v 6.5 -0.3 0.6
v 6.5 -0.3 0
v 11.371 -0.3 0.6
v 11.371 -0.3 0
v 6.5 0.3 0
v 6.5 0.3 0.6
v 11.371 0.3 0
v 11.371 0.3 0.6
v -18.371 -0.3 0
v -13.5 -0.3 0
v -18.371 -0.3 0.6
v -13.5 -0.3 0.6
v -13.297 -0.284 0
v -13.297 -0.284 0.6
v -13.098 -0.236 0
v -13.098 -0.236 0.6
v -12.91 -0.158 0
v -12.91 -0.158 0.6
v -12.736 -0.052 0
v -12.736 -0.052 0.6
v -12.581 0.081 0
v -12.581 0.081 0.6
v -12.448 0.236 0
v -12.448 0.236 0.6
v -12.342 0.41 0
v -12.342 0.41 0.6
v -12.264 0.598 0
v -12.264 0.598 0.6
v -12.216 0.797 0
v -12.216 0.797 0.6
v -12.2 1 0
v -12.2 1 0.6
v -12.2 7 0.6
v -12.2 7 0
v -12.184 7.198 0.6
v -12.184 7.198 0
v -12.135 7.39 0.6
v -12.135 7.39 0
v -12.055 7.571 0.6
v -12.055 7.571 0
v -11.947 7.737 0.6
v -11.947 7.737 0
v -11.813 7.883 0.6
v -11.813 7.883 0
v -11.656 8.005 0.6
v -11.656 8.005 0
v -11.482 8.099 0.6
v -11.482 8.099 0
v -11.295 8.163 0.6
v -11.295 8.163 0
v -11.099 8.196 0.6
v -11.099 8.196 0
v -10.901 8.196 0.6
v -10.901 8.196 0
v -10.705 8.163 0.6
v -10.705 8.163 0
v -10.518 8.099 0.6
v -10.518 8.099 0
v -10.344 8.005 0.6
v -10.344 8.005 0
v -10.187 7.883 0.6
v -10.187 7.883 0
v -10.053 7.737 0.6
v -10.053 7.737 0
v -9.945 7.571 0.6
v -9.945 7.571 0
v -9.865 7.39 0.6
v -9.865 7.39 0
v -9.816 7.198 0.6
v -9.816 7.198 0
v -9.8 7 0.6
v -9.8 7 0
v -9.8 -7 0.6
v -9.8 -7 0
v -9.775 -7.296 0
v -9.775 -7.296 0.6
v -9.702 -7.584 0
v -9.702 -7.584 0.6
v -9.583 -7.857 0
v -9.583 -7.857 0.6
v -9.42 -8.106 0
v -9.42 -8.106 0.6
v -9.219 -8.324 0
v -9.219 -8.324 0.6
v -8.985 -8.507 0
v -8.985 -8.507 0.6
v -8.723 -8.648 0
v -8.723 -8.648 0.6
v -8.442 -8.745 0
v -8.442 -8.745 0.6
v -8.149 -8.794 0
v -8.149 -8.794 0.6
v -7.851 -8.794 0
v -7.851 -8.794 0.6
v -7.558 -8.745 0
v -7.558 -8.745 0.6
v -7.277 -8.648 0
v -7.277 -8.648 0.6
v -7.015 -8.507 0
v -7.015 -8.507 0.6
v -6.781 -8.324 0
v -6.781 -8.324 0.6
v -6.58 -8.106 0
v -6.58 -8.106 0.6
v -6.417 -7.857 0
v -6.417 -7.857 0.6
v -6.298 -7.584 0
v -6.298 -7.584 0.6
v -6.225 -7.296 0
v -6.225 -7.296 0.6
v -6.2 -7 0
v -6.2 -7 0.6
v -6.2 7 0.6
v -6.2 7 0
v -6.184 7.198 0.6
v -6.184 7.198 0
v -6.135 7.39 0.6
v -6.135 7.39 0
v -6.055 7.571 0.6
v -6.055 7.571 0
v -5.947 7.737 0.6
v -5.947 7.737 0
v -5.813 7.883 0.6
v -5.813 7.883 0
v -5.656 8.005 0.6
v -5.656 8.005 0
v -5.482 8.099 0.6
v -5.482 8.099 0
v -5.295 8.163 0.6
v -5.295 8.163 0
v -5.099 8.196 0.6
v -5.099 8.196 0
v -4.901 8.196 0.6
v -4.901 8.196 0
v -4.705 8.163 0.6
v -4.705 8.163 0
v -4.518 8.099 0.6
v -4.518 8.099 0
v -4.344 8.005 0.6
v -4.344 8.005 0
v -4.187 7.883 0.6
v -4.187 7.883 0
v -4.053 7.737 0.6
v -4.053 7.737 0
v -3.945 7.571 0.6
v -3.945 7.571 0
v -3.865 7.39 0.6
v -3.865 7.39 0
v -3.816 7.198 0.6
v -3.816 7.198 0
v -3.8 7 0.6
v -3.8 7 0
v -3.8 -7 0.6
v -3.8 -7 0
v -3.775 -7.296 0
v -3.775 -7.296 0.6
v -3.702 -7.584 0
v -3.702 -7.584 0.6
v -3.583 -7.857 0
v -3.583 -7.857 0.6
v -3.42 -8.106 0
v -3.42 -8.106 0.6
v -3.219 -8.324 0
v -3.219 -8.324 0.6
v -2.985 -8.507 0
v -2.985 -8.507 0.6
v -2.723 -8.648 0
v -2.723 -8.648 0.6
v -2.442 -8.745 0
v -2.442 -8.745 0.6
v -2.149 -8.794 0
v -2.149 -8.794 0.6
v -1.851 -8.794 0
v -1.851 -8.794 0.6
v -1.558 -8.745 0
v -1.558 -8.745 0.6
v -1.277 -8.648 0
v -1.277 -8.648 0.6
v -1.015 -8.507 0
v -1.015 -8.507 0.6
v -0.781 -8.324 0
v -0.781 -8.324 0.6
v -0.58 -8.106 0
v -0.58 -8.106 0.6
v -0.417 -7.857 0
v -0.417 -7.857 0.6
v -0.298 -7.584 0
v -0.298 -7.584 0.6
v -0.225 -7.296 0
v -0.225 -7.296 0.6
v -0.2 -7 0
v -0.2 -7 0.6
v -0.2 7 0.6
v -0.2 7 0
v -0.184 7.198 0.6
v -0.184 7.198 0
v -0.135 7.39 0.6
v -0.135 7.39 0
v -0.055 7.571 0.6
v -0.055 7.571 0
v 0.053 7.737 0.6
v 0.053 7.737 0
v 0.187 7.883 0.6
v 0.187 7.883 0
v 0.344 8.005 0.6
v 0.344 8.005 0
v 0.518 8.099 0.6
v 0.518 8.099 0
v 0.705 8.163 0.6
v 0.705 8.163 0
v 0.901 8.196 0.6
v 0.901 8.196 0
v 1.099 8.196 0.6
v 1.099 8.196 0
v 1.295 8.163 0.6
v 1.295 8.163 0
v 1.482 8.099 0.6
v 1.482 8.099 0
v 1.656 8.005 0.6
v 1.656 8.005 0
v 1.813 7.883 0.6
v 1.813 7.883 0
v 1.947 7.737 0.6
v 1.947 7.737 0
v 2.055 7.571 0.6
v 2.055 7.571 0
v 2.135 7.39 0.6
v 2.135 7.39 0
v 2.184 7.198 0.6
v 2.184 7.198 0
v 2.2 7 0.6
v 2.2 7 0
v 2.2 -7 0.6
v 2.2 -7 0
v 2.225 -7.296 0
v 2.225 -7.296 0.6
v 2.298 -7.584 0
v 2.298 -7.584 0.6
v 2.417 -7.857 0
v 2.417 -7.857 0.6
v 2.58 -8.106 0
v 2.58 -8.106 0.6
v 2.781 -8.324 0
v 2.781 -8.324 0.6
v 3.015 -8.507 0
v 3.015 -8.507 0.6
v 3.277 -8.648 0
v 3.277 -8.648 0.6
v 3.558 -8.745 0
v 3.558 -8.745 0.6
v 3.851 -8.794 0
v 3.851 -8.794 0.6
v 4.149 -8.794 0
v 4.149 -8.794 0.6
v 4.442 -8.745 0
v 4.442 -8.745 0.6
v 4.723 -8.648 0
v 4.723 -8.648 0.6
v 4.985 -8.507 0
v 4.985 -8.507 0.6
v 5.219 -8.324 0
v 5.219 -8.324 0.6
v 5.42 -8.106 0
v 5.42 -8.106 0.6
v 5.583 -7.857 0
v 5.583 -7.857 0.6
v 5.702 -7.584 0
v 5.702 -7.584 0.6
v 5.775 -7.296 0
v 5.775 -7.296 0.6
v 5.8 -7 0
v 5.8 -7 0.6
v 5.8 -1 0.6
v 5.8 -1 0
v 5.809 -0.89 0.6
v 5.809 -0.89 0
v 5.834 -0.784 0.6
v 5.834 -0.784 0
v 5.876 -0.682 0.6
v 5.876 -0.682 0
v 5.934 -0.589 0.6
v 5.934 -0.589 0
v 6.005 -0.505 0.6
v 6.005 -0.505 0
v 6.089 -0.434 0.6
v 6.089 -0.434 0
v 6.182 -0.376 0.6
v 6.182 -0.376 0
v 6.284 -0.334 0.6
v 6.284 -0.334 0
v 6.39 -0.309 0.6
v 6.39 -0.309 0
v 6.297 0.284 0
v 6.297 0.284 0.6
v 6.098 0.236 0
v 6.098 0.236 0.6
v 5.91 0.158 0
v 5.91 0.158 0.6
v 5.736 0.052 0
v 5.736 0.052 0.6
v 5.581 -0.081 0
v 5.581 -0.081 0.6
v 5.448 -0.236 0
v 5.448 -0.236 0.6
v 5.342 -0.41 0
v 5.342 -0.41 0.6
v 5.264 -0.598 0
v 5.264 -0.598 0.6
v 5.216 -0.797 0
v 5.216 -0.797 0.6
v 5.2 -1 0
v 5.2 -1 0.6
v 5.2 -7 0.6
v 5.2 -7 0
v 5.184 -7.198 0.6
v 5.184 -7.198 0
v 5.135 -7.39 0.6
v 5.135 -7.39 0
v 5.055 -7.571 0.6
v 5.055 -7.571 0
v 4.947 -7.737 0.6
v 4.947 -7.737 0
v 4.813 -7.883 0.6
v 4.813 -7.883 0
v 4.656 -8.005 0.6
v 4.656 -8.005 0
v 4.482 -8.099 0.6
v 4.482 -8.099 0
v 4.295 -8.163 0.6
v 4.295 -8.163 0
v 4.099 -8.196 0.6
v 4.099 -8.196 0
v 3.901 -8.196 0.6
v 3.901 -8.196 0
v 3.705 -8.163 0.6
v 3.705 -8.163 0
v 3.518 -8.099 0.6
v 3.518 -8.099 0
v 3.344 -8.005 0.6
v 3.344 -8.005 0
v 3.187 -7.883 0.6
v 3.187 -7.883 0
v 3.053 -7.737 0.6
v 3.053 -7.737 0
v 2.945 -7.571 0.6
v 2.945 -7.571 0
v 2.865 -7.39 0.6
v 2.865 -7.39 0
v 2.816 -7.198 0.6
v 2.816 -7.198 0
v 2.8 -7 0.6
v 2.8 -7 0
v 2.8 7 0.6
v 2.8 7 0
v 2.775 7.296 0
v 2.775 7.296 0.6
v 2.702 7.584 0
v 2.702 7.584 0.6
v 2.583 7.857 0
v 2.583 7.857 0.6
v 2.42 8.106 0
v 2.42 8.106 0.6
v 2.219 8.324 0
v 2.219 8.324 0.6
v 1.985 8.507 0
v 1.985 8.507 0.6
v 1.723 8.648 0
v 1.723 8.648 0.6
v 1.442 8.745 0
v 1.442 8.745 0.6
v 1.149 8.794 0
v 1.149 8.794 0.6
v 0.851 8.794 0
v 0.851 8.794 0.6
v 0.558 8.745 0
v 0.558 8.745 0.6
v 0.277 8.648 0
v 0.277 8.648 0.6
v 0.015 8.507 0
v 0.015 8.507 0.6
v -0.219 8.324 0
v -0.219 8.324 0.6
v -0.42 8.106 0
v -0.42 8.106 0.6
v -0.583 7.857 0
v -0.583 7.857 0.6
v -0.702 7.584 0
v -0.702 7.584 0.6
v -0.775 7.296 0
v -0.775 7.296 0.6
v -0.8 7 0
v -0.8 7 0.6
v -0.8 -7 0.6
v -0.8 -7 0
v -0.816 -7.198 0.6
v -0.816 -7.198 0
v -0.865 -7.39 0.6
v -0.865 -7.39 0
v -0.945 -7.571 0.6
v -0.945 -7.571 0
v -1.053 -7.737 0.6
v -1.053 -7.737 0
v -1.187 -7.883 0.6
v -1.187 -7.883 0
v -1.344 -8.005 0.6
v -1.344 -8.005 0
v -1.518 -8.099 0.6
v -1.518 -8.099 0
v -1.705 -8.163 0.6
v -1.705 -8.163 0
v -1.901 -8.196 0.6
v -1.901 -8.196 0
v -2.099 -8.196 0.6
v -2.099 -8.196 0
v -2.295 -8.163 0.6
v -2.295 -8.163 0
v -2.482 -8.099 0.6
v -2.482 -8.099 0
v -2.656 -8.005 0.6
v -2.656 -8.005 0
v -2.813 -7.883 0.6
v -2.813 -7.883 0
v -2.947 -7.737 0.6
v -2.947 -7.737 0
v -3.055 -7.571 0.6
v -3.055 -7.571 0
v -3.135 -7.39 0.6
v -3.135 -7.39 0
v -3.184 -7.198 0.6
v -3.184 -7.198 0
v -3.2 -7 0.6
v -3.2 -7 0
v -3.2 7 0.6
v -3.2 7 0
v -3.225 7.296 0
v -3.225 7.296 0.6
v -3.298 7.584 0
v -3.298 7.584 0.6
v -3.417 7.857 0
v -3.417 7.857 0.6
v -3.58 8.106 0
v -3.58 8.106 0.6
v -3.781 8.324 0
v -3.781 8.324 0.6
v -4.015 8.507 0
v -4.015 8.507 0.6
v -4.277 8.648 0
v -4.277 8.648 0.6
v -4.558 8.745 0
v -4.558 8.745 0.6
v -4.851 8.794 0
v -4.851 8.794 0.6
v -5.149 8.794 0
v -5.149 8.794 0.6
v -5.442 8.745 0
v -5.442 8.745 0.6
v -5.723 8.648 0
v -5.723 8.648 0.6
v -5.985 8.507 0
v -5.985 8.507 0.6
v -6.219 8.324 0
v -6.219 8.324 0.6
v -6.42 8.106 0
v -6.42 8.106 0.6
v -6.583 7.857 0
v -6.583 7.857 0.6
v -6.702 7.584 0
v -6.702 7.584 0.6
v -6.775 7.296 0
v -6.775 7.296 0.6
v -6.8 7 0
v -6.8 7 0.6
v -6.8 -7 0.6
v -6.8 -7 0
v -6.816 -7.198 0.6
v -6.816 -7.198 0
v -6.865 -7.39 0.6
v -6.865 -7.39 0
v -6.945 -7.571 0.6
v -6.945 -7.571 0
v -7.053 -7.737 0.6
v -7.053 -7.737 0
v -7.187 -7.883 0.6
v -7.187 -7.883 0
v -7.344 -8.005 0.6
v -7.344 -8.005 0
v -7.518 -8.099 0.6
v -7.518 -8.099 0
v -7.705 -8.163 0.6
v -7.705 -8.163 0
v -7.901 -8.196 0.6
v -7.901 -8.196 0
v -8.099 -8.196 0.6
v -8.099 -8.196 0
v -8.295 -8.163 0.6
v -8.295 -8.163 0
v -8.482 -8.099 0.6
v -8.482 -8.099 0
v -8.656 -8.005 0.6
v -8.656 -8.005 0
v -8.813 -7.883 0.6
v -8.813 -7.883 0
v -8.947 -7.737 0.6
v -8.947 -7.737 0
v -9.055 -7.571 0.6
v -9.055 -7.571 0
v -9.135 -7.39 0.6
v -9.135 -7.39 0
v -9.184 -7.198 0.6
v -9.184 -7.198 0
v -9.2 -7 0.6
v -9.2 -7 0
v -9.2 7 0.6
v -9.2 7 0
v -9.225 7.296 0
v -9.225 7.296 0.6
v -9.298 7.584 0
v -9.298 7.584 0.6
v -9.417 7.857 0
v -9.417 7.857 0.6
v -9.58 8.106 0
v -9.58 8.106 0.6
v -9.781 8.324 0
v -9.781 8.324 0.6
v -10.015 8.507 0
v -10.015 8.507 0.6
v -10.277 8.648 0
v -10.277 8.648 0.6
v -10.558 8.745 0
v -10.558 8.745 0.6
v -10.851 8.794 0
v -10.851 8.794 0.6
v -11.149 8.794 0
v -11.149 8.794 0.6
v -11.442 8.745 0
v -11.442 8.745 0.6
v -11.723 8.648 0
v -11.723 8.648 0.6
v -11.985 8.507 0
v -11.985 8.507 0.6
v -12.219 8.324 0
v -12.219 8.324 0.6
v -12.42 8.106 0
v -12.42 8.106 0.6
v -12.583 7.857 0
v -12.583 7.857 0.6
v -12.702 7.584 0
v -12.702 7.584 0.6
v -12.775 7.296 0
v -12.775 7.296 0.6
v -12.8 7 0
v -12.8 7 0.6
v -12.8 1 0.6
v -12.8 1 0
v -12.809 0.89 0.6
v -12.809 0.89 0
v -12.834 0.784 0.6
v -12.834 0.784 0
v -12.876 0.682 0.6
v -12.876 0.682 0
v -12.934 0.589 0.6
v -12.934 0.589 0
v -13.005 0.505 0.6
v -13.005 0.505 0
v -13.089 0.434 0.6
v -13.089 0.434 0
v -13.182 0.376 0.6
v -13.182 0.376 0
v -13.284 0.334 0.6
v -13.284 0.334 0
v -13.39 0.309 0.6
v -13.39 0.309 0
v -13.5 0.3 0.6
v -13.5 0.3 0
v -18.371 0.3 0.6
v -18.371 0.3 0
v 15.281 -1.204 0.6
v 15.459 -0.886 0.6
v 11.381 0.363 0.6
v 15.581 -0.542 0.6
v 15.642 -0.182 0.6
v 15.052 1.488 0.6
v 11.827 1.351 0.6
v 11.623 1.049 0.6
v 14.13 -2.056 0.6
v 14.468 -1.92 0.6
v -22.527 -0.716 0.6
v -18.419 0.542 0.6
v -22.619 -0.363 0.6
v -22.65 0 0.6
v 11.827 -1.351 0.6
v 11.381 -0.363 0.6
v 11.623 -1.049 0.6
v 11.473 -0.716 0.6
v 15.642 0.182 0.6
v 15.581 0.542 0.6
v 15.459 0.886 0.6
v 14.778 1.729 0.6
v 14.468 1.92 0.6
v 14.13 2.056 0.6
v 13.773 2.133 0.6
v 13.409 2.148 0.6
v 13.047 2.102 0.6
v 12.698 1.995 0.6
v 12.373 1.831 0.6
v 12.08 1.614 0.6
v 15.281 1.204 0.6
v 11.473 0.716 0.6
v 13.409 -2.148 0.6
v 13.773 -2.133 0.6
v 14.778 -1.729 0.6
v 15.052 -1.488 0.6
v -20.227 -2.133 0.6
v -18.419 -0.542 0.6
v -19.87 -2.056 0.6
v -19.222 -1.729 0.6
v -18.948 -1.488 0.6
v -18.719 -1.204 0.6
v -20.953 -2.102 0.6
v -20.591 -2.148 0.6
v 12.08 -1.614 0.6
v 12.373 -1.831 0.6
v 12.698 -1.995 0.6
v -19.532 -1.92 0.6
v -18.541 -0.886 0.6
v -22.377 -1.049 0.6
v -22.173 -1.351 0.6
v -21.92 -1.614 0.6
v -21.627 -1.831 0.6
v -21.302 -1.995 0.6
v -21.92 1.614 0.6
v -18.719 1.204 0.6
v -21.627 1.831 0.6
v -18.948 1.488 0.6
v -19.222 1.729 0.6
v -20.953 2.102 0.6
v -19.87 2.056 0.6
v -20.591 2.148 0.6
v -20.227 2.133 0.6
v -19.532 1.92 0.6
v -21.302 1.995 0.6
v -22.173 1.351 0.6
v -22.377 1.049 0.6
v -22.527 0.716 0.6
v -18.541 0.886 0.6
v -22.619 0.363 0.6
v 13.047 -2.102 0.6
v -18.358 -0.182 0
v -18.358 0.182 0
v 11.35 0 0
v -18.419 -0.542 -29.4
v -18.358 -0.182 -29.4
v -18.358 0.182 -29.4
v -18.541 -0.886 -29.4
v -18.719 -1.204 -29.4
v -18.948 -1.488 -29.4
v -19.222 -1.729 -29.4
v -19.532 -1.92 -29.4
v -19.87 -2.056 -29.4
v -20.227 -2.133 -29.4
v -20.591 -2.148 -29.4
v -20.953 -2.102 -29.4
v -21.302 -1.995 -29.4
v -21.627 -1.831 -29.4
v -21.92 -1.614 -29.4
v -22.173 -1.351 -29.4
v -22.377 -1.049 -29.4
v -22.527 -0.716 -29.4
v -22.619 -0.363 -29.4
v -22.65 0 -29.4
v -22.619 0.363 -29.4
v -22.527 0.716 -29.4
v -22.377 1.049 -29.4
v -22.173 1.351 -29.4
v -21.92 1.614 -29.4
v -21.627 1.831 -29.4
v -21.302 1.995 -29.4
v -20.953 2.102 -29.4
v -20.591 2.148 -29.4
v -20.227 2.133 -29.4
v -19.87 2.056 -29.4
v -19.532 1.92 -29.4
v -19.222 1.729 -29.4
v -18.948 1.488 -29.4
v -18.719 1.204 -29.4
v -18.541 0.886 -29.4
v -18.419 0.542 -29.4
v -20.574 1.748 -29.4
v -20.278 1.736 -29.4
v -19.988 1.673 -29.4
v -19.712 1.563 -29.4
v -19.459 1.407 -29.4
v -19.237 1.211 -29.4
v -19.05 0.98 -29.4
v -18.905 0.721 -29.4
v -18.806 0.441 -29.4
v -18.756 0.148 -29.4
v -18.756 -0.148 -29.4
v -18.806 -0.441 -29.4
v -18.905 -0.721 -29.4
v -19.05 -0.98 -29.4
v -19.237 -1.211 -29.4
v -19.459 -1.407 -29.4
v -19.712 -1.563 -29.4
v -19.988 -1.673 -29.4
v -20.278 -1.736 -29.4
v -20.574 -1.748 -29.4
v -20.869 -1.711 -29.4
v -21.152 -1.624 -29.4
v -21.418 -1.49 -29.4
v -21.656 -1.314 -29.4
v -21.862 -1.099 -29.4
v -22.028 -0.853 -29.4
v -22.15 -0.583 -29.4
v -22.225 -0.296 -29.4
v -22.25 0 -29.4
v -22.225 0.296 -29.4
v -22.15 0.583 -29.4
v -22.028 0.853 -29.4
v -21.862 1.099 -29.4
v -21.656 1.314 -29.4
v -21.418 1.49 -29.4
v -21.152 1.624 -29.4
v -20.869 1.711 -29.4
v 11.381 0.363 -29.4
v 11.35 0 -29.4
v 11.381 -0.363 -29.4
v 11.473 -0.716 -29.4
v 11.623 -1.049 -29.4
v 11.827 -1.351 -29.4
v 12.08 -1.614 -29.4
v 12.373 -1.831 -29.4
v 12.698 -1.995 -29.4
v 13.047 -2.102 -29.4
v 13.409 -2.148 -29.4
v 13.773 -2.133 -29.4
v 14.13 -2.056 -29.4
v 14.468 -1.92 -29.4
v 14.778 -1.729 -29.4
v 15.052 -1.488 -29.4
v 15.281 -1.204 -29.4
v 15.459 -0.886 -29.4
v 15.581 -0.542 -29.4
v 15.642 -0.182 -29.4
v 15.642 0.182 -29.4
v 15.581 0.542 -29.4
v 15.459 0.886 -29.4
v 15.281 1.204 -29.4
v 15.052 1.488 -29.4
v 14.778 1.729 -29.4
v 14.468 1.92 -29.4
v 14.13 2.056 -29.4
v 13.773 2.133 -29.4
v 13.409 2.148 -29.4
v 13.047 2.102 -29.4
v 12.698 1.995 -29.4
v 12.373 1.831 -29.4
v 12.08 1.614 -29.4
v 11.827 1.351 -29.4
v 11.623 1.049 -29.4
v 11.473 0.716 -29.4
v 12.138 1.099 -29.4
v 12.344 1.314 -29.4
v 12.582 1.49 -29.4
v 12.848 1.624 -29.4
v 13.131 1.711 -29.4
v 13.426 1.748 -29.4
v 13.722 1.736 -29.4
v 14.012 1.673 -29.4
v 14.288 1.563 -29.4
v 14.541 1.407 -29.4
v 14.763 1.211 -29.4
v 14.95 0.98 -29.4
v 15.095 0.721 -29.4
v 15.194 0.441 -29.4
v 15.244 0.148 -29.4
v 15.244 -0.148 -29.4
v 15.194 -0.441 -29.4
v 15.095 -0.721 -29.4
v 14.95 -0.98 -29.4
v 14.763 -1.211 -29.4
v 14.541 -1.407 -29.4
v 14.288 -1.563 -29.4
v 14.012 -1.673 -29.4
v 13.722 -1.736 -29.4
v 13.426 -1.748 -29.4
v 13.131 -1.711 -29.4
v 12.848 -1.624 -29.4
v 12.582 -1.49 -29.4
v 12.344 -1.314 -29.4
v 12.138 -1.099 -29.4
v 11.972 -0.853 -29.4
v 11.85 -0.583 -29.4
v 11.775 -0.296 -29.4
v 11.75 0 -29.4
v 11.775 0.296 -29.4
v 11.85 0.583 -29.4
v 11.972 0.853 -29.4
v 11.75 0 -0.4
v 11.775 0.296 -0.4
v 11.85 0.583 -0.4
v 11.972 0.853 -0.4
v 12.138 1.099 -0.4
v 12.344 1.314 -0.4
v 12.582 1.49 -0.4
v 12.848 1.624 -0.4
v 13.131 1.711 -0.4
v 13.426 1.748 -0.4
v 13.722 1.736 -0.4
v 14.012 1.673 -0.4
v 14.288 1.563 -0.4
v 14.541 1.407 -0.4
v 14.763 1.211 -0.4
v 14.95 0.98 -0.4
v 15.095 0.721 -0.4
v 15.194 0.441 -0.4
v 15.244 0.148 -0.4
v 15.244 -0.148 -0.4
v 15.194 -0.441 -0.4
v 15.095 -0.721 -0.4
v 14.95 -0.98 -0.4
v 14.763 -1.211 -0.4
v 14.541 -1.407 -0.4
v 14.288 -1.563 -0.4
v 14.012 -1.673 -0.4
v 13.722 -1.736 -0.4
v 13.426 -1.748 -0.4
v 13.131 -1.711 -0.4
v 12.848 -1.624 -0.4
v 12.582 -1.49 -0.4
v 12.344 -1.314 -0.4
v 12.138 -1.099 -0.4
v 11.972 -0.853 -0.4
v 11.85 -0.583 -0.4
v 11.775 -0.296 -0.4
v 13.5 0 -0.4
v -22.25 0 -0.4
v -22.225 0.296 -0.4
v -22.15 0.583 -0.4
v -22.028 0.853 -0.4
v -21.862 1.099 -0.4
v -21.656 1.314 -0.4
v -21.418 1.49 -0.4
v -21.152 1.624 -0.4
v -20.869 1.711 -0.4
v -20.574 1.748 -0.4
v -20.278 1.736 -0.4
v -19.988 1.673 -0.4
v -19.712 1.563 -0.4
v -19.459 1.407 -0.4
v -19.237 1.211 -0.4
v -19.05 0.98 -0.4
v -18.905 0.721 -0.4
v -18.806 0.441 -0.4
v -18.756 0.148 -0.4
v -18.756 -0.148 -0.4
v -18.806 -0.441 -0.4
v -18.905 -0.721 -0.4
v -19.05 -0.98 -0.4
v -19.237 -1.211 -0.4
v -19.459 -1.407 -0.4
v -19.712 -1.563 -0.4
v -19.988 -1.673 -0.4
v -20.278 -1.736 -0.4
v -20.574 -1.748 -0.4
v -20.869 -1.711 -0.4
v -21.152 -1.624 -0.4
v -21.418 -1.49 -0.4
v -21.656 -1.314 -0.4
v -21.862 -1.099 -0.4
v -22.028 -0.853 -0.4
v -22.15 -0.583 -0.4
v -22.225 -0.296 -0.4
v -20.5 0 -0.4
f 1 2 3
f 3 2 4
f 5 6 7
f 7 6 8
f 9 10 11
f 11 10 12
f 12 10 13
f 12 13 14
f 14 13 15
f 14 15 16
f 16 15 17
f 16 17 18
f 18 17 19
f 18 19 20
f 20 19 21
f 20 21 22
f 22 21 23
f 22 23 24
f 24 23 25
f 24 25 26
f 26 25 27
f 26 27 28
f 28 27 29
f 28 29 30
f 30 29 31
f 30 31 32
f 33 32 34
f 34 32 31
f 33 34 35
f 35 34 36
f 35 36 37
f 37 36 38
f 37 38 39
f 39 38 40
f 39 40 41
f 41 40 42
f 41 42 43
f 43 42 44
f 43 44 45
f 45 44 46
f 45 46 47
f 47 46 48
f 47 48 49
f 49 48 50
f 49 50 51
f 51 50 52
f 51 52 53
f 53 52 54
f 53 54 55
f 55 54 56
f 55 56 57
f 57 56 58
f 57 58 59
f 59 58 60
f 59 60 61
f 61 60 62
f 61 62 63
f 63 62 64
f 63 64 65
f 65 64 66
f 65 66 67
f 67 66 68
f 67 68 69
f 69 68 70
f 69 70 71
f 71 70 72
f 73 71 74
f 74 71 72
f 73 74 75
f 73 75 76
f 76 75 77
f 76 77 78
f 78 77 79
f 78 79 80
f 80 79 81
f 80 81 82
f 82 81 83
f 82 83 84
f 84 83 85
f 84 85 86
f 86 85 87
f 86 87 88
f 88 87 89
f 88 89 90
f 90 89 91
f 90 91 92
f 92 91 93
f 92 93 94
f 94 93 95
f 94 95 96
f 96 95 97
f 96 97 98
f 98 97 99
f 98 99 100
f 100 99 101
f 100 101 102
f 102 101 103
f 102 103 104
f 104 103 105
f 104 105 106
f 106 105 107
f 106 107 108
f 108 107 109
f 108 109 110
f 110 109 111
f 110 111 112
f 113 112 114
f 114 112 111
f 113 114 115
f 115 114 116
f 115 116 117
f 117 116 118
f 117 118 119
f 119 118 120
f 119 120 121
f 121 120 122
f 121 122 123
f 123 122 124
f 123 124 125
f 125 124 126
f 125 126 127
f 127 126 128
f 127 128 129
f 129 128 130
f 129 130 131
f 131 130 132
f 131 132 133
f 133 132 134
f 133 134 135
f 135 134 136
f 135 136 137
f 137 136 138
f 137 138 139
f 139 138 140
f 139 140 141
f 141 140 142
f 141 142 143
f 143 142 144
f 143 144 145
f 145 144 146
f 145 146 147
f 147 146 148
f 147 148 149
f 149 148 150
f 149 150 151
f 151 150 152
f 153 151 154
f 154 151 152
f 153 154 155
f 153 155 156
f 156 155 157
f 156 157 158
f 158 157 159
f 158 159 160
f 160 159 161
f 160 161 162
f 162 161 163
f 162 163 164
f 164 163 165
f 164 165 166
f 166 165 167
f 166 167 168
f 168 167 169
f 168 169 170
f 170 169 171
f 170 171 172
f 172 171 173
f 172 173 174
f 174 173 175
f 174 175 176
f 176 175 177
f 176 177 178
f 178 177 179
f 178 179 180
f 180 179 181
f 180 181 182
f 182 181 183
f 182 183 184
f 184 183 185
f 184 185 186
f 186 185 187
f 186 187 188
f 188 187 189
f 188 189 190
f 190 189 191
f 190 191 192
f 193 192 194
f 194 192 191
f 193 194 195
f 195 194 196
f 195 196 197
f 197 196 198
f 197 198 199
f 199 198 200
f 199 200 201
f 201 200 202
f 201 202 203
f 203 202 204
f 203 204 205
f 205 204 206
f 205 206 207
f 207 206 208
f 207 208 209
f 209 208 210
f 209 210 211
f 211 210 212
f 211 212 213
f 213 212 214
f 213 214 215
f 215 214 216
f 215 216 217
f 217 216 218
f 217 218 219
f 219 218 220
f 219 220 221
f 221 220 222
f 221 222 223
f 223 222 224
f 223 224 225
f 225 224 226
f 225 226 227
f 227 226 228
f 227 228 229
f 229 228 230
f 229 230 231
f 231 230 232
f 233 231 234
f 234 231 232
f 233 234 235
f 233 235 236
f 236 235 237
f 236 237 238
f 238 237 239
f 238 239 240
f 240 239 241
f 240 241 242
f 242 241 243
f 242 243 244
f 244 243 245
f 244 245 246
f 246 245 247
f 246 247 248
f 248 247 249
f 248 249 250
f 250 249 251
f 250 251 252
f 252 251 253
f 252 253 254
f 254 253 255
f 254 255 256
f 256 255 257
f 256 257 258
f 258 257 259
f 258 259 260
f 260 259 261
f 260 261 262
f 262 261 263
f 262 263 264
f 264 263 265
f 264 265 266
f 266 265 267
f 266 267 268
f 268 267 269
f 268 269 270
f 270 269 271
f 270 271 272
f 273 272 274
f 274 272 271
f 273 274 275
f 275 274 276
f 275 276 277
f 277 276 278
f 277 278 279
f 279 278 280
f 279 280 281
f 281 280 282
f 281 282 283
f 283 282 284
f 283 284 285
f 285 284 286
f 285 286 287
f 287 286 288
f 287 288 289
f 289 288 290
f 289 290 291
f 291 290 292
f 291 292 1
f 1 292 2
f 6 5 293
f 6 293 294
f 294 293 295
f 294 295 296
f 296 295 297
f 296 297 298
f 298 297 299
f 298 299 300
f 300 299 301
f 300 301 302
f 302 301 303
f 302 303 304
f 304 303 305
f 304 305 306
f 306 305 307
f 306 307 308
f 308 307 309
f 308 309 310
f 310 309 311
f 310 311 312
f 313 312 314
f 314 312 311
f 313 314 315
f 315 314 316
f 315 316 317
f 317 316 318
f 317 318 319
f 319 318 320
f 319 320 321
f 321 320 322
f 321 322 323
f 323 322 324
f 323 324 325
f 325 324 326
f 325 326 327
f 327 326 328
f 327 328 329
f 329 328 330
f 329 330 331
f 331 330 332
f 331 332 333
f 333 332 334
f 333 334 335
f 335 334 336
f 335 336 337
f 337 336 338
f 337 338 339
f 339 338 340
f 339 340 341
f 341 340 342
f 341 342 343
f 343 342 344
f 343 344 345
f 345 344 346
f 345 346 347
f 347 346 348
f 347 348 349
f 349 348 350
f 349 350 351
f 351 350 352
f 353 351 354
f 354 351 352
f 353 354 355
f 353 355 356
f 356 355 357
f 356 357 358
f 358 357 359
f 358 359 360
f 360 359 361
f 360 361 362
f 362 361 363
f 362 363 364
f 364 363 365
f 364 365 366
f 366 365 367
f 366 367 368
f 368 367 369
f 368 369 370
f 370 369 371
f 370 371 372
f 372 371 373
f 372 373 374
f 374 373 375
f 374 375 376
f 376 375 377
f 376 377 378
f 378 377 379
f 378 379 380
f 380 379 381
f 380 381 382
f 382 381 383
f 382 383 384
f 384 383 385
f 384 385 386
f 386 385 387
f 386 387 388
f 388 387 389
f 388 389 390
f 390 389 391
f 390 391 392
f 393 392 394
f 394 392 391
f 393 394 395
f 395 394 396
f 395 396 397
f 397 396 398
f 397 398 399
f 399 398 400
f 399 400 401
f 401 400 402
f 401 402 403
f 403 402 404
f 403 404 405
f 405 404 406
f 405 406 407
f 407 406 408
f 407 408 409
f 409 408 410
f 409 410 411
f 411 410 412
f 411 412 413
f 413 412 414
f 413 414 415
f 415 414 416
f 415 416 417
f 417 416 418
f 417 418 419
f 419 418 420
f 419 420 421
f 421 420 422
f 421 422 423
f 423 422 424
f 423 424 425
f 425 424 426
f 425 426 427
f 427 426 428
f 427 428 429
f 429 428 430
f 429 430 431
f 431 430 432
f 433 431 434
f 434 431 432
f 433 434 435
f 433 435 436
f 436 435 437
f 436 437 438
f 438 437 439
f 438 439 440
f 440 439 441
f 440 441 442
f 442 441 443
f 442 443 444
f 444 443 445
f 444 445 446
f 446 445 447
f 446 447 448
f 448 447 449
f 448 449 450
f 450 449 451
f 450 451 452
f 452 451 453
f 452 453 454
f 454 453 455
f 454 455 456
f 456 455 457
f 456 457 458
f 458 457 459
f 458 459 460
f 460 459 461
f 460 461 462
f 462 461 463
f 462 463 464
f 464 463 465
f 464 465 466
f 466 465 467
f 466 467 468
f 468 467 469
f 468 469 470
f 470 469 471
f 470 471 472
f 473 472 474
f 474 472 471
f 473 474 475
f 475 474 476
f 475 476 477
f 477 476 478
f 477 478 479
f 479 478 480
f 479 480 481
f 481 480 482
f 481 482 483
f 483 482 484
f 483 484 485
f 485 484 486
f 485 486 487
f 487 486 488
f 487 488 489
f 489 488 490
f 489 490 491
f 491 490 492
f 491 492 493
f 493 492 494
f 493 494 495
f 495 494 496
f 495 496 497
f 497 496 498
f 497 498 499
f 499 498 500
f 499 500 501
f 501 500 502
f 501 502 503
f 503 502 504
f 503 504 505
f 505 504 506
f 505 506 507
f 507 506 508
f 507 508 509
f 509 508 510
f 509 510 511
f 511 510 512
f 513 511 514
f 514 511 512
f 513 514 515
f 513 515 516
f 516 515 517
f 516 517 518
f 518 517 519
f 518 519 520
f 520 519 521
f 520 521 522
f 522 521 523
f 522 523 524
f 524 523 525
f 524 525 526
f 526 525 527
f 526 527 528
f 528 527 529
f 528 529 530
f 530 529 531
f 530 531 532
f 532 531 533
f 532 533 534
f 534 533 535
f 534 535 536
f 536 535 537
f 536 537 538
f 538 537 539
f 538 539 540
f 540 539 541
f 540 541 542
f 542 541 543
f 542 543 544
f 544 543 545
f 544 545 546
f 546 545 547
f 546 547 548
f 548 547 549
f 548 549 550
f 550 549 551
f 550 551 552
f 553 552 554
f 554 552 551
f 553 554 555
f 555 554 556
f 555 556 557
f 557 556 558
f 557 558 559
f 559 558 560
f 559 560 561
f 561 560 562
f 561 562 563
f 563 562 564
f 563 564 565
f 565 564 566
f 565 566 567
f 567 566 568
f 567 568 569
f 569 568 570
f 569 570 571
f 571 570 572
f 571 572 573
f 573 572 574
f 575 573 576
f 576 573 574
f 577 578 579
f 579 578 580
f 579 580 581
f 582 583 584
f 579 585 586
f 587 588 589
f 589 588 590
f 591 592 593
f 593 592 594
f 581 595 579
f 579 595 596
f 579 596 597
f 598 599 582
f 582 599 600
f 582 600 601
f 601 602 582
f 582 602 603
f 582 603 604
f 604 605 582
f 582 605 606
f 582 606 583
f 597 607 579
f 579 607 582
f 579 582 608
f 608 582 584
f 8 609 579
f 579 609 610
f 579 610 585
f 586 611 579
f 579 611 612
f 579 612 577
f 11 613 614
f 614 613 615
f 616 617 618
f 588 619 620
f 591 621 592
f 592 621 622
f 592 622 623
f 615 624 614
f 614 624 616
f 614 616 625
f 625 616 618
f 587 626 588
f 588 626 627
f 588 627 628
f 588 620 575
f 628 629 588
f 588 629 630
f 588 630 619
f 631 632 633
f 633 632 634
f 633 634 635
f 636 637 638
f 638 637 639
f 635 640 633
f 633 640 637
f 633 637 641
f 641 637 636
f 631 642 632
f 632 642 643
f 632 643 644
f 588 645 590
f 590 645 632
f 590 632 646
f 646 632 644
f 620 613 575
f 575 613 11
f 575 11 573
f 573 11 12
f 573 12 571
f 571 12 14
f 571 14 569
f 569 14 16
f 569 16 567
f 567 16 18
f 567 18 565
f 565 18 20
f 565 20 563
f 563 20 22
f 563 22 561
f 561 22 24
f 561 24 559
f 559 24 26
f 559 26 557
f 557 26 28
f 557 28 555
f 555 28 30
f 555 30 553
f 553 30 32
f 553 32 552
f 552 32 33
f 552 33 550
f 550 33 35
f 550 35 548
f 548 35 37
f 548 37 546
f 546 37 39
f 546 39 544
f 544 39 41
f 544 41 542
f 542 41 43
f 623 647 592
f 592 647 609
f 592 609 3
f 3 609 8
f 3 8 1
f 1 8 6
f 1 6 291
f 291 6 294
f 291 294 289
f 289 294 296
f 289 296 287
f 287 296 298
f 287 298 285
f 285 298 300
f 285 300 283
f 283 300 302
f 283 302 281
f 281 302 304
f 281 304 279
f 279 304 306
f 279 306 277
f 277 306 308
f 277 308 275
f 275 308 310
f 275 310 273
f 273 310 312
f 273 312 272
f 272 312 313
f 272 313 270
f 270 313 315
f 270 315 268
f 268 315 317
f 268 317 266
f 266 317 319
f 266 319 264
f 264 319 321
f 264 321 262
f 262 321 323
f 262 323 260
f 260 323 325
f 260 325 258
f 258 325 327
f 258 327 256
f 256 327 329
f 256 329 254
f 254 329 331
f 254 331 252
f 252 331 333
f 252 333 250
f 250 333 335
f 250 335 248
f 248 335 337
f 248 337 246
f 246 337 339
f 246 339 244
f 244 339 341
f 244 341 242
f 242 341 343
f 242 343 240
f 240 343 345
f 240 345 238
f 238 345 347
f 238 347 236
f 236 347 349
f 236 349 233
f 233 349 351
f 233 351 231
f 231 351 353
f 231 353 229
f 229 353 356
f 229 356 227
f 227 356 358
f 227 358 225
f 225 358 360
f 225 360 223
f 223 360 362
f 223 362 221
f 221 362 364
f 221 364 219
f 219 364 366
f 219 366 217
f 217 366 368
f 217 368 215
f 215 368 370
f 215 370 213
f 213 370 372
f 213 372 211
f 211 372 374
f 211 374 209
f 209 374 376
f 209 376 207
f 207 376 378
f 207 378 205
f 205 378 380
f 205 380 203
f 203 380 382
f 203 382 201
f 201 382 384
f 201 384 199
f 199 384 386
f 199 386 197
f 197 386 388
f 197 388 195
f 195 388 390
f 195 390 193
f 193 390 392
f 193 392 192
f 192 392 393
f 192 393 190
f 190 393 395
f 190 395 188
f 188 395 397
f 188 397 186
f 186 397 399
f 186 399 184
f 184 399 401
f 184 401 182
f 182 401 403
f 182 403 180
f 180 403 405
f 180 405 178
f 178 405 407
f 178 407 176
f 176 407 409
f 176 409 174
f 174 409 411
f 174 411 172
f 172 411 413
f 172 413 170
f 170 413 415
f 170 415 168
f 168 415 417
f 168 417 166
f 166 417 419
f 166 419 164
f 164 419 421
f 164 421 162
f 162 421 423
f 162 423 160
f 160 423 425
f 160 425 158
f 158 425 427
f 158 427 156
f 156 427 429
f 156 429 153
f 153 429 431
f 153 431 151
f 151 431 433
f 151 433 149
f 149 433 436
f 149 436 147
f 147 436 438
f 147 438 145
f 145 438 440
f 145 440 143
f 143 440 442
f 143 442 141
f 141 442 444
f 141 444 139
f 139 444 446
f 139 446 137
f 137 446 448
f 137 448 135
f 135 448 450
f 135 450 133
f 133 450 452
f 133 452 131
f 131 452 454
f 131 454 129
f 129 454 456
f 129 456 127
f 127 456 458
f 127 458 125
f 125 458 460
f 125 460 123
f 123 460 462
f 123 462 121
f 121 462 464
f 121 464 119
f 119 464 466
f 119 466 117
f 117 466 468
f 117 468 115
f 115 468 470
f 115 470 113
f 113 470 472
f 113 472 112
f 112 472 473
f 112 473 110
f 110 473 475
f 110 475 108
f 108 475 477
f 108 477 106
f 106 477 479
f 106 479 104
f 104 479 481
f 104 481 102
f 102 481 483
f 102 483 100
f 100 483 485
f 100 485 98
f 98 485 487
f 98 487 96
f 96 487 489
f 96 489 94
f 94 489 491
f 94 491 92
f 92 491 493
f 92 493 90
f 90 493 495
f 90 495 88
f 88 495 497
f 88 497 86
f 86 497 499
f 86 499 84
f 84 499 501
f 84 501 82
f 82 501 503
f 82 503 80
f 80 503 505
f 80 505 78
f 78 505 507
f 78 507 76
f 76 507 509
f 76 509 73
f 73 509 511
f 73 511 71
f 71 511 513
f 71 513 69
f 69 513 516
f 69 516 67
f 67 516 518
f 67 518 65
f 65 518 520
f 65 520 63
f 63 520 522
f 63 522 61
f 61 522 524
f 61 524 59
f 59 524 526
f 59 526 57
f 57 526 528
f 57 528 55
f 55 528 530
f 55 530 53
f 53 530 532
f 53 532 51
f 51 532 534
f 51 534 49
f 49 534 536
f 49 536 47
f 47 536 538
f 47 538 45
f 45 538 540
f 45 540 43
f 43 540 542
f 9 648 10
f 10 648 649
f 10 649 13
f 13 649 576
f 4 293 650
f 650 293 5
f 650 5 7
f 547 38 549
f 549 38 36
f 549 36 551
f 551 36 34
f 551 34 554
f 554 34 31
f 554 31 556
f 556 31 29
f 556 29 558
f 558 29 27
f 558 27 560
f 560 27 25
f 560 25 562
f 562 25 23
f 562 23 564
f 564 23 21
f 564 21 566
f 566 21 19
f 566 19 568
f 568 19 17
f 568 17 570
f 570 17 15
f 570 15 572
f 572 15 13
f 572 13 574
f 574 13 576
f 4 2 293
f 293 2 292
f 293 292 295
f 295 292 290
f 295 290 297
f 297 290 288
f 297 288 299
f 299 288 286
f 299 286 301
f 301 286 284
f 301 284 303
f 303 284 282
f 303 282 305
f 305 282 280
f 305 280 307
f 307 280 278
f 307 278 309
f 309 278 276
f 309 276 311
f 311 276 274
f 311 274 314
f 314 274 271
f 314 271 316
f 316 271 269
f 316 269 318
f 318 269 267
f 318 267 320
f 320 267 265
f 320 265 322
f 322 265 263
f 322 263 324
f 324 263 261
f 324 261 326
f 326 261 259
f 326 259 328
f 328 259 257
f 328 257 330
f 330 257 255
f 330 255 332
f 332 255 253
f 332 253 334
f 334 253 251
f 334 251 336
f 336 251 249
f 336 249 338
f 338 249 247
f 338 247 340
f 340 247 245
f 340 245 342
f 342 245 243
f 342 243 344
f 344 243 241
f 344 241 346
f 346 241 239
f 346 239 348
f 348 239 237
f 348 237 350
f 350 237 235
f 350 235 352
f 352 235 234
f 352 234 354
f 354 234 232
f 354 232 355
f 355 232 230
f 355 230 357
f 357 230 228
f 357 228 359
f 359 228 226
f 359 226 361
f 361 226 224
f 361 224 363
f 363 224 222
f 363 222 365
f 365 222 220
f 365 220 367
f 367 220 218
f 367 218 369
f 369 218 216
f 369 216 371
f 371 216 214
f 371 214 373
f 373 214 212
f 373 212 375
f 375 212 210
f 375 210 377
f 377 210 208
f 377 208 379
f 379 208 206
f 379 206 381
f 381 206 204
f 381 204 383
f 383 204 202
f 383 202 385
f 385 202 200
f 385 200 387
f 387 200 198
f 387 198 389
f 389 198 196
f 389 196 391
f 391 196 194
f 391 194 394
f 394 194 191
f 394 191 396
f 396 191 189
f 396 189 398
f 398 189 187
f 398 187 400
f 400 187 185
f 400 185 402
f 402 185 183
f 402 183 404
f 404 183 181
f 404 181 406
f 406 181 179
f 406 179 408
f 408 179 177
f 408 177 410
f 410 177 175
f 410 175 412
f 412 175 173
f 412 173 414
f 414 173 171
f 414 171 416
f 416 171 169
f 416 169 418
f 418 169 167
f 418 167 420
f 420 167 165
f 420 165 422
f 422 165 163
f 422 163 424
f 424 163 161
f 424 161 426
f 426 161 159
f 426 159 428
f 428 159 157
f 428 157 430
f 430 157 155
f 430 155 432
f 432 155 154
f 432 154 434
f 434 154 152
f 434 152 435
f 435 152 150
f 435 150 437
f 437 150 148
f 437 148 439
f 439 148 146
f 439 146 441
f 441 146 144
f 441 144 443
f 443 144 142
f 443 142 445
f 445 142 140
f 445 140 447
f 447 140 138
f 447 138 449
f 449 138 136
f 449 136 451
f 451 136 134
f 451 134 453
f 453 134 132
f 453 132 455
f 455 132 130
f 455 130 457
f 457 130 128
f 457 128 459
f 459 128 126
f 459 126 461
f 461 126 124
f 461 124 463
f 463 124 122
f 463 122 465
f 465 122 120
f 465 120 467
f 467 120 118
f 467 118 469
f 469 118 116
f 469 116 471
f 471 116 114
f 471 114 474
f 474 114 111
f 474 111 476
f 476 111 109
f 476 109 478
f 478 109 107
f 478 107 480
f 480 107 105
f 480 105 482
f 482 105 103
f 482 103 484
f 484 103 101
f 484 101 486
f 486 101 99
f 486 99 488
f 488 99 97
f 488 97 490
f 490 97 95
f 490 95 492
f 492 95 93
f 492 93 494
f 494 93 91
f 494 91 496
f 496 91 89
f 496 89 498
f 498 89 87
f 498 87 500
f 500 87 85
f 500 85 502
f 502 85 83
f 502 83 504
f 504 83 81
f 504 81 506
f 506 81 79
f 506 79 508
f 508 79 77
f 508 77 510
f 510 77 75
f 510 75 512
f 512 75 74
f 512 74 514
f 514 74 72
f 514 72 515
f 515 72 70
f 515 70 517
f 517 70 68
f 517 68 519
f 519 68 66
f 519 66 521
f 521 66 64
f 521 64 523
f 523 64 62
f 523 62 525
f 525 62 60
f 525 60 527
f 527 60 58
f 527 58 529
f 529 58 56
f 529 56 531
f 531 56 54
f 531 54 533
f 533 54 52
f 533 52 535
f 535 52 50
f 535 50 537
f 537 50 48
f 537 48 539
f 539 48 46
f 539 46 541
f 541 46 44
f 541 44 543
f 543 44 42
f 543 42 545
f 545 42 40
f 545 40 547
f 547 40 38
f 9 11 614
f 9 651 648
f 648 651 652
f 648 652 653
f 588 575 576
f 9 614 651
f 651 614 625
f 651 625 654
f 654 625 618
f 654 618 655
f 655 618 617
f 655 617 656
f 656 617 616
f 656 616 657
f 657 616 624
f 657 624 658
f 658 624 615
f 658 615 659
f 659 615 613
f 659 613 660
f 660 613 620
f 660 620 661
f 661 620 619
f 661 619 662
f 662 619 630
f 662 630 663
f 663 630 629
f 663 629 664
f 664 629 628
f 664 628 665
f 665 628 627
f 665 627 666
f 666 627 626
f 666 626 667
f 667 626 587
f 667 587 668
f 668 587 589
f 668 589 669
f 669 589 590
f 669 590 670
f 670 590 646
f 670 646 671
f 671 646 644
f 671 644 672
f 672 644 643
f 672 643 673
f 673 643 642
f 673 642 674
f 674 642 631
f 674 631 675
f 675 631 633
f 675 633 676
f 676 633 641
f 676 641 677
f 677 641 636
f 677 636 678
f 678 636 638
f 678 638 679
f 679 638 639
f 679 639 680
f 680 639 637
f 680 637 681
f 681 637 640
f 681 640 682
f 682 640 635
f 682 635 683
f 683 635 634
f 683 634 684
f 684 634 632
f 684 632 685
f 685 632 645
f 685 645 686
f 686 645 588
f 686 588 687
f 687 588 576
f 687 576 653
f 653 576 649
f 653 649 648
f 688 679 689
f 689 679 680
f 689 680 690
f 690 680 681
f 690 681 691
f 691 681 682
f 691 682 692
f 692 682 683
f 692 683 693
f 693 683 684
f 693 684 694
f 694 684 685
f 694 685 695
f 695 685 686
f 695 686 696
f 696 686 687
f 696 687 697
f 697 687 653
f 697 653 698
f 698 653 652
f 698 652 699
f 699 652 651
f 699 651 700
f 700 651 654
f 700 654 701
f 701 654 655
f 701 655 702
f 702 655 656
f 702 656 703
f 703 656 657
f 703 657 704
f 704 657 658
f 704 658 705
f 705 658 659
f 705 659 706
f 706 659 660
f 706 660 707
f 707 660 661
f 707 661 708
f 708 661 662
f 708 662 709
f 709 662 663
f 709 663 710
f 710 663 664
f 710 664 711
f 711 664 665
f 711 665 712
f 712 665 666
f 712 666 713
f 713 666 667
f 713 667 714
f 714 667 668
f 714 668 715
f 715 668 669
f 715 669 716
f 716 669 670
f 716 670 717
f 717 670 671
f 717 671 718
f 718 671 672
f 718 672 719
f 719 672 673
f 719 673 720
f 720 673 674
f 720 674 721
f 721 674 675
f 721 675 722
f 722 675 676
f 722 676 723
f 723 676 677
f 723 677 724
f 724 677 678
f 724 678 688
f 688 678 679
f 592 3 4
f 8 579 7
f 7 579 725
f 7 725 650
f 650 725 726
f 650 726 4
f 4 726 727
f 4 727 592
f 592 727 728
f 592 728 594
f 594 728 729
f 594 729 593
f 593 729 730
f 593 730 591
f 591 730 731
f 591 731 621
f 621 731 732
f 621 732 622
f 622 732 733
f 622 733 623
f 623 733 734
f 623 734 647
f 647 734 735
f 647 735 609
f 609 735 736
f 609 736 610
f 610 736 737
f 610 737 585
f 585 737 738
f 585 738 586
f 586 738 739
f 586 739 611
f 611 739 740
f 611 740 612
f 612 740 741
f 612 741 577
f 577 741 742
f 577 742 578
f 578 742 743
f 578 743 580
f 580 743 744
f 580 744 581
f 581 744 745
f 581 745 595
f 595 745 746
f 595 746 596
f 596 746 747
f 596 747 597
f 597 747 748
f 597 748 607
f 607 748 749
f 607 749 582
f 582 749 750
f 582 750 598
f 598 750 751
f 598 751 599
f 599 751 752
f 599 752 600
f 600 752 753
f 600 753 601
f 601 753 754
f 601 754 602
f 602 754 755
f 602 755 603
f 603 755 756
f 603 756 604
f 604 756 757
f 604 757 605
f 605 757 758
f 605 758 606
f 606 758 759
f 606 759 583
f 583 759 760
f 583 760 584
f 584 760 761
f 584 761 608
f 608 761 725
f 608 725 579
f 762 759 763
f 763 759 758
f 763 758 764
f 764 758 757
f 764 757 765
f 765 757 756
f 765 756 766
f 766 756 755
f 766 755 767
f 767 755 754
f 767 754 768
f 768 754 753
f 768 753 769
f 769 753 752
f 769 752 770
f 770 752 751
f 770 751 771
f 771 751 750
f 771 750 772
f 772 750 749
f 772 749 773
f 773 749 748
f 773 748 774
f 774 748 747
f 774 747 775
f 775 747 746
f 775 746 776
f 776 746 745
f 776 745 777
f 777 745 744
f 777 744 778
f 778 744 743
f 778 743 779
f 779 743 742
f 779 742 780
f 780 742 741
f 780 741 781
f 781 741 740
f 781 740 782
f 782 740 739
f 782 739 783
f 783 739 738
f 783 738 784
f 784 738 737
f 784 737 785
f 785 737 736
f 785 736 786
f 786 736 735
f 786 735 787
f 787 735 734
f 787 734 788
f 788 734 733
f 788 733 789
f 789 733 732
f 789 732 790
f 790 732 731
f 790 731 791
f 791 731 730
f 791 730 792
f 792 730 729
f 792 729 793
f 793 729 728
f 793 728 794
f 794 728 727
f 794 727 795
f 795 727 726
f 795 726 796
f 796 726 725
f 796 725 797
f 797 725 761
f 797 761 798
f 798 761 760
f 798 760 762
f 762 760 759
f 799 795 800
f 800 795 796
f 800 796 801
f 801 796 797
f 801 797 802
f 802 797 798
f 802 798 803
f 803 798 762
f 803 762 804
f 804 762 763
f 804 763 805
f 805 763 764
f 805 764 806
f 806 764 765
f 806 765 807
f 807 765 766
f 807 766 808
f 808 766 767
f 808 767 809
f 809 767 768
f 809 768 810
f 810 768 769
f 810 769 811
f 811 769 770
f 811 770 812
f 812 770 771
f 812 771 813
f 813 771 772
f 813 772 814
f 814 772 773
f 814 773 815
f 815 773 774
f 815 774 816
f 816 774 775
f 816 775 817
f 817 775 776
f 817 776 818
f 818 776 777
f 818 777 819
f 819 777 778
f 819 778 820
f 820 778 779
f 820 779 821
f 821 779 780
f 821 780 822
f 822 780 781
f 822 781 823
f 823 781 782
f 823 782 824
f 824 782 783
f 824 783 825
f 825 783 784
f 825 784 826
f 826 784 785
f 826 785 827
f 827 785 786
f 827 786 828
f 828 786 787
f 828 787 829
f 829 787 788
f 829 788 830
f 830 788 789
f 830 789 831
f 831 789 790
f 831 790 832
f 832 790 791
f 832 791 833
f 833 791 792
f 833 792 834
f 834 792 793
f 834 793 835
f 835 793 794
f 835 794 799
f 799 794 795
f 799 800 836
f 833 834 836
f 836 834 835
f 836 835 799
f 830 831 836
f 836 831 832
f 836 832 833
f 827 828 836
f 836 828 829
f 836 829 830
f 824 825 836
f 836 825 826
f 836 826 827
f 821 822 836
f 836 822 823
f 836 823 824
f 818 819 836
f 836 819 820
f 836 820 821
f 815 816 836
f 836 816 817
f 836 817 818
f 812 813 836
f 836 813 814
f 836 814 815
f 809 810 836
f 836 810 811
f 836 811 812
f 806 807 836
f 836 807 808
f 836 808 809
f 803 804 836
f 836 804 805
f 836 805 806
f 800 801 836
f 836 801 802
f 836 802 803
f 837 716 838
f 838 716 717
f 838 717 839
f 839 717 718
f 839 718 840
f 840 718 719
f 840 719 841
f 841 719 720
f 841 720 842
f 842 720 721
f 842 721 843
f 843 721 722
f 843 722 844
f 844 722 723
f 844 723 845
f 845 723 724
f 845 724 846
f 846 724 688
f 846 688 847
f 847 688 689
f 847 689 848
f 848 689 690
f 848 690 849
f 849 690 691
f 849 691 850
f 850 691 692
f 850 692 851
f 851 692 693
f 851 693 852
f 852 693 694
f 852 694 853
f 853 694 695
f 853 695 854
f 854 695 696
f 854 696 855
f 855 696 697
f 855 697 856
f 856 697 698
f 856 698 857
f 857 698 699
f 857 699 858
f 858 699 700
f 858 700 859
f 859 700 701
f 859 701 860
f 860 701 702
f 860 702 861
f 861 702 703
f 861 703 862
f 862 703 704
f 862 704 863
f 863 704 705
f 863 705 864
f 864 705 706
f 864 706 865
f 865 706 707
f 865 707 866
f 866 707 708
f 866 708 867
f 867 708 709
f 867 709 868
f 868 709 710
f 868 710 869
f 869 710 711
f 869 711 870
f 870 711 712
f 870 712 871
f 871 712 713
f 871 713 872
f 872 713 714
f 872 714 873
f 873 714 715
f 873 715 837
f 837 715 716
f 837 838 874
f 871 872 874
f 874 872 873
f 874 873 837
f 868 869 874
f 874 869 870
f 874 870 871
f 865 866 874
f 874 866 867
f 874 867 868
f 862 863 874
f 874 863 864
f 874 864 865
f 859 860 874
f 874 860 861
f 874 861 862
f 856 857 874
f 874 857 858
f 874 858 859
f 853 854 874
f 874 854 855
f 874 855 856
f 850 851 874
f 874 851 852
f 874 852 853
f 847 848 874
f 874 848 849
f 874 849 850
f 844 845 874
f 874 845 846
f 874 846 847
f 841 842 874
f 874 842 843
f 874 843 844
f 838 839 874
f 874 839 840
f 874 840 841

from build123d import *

# Parameters (mm, degrees)
BOSS_EXTRUDE1_DEPTH = 0.6
SKETCH3_W           = 2.15
SKETCH3_H           = 30
SKETCH4_W           = 2.15
SKETCH4_H           = 30
SKETCH5_R           = 1.75
CUT_EXTRUDE1_DEPTH  = 29


with BuildPart() as part:
    # Sketch2 → Boss-Extrude1 (new body)
    with BuildSketch(Plane.XY):
        with BuildLine():
            Line((-20.5, -0.3), (-13.5, -0.3))
            ThreePointArc((-13.5, -0.3), (-12.580761184, 0.080761184), (-12.2, 1))
            Line((-12.2, 1), (-12.2, 7))
            ThreePointArc((-12.2, 7), (-11, 8.2), (-9.8, 7))
            Line((-9.8, 7), (-9.8, 0))
            Line((-9.8, 0), (-9.8, -7))
            ThreePointArc((-9.8, -7), (-8, -8.8), (-6.2, -7))
            Line((-6.2, -7), (-6.2, 0))
            Line((-6.2, 0), (-6.2, 7))
            ThreePointArc((-6.2, 7), (-5, 8.2), (-3.8, 7))
            Line((-3.8, 7), (-3.8, 0))
            Line((-3.8, 0), (-3.8, -7))
            ThreePointArc((-3.8, -7), (-2, -8.8), (-0.2, -7))
            Line((-0.2, -7), (-0.2, 0))
            Line((-0.2, 0), (-0.2, 7))
            ThreePointArc((-0.2, 7), (1, 8.2), (2.2, 7))
            Line((2.2, 7), (2.2, 0))
            Line((2.2, 0), (2.2, -7))
            ThreePointArc((2.2, -7), (4, -8.8), (5.8, -7))
            Line((5.8, -7), (5.8, -1))
            ThreePointArc((5.8, -1), (6.005025253, -0.505025253), (6.5, -0.3))
            Line((6.5, -0.3), (13.5, -0.3))
            ThreePointArc((13.5, -0.3), (13.8, 0), (13.5, 0.3))
            Line((13.5, 0.3), (6.5, 0.3))
            ThreePointArc((6.5, 0.3), (5.580761184, -0.080761184), (5.2, -1))
            Line((5.2, -1), (5.2, -7))
            ThreePointArc((5.2, -7), (4, -8.2), (2.8, -7))
            Line((2.8, -7), (2.8, 0))
            Line((2.8, 0), (2.8, 7))
            ThreePointArc((2.8, 7), (1, 8.8), (-0.8, 7))
            Line((-0.8, 7), (-0.8, 0))
            Line((-0.8, 0), (-0.8, -7))
            ThreePointArc((-0.8, -7), (-2, -8.2), (-3.2, -7))
            Line((-3.2, -7), (-3.2, 0))
            Line((-3.2, 0), (-3.2, 7))
            ThreePointArc((-3.2, 7), (-5, 8.8), (-6.8, 7))
            Line((-6.8, 7), (-6.8, 0))
            Line((-6.8, 0), (-6.8, -7))
            ThreePointArc((-6.8, -7), (-8, -8.2), (-9.2, -7))
            Line((-9.2, -7), (-9.2, 0))
            Line((-9.2, 0), (-9.2, 7))
            ThreePointArc((-9.2, 7), (-11, 8.8), (-12.8, 7))
            Line((-12.8, 7), (-12.8, 1))
            ThreePointArc((-12.8, 1), (-13.005025253, 0.505025253), (-13.5, 0.3))
            Line((-13.5, 0.3), (-20.5, 0.3))
            ThreePointArc((-20.5, 0.3), (-20.8, 0), (-20.5, -0.3))
        make_face()
    extrude(amount=BOSS_EXTRUDE1_DEPTH)

    # Sketch3 → Revolve1 (revolve)
    with BuildSketch(Plane(origin=(0, 0, 0), x_dir=(1, 0, 0), z_dir=(0, 1, 0))):
        with Locations((-21.575, 14.4)):
            Rectangle(SKETCH3_W, SKETCH3_H)
    revolve(axis=Axis((-20.5, 0, -29.4), (0, 0, 1)))

    # Sketch4 → Revolve2 (revolve)
    with BuildSketch(Plane(origin=(0, 0, 0), x_dir=(1, 0, 0), z_dir=(0, 1, 0)), mode=Mode.PRIVATE) as revolve2_sk:
        with Locations((14.575, 14.4)):
            Rectangle(SKETCH4_W, SKETCH4_H)
    revolve(revolve2_sk.sketch.rotate(Axis((13.5, 0, -29.4), (0, 0, 1)), 180), axis=Axis((13.5, 0, -29.4), (0, 0, 1)))

    # Sketch5 → Cut-Extrude1 (cut)
    with BuildSketch(Plane(origin=(0, 0, -29.4), x_dir=(-1, 0, 0), z_dir=(0, 0, -1))):
        with Locations((20.5, 0)):
            Circle(SKETCH5_R)
        with Locations((-13.5, 0)):
            Circle(SKETCH5_R)
    extrude(amount=-CUT_EXTRUDE1_DEPTH, mode=Mode.SUBTRACT)


solid = part.part
